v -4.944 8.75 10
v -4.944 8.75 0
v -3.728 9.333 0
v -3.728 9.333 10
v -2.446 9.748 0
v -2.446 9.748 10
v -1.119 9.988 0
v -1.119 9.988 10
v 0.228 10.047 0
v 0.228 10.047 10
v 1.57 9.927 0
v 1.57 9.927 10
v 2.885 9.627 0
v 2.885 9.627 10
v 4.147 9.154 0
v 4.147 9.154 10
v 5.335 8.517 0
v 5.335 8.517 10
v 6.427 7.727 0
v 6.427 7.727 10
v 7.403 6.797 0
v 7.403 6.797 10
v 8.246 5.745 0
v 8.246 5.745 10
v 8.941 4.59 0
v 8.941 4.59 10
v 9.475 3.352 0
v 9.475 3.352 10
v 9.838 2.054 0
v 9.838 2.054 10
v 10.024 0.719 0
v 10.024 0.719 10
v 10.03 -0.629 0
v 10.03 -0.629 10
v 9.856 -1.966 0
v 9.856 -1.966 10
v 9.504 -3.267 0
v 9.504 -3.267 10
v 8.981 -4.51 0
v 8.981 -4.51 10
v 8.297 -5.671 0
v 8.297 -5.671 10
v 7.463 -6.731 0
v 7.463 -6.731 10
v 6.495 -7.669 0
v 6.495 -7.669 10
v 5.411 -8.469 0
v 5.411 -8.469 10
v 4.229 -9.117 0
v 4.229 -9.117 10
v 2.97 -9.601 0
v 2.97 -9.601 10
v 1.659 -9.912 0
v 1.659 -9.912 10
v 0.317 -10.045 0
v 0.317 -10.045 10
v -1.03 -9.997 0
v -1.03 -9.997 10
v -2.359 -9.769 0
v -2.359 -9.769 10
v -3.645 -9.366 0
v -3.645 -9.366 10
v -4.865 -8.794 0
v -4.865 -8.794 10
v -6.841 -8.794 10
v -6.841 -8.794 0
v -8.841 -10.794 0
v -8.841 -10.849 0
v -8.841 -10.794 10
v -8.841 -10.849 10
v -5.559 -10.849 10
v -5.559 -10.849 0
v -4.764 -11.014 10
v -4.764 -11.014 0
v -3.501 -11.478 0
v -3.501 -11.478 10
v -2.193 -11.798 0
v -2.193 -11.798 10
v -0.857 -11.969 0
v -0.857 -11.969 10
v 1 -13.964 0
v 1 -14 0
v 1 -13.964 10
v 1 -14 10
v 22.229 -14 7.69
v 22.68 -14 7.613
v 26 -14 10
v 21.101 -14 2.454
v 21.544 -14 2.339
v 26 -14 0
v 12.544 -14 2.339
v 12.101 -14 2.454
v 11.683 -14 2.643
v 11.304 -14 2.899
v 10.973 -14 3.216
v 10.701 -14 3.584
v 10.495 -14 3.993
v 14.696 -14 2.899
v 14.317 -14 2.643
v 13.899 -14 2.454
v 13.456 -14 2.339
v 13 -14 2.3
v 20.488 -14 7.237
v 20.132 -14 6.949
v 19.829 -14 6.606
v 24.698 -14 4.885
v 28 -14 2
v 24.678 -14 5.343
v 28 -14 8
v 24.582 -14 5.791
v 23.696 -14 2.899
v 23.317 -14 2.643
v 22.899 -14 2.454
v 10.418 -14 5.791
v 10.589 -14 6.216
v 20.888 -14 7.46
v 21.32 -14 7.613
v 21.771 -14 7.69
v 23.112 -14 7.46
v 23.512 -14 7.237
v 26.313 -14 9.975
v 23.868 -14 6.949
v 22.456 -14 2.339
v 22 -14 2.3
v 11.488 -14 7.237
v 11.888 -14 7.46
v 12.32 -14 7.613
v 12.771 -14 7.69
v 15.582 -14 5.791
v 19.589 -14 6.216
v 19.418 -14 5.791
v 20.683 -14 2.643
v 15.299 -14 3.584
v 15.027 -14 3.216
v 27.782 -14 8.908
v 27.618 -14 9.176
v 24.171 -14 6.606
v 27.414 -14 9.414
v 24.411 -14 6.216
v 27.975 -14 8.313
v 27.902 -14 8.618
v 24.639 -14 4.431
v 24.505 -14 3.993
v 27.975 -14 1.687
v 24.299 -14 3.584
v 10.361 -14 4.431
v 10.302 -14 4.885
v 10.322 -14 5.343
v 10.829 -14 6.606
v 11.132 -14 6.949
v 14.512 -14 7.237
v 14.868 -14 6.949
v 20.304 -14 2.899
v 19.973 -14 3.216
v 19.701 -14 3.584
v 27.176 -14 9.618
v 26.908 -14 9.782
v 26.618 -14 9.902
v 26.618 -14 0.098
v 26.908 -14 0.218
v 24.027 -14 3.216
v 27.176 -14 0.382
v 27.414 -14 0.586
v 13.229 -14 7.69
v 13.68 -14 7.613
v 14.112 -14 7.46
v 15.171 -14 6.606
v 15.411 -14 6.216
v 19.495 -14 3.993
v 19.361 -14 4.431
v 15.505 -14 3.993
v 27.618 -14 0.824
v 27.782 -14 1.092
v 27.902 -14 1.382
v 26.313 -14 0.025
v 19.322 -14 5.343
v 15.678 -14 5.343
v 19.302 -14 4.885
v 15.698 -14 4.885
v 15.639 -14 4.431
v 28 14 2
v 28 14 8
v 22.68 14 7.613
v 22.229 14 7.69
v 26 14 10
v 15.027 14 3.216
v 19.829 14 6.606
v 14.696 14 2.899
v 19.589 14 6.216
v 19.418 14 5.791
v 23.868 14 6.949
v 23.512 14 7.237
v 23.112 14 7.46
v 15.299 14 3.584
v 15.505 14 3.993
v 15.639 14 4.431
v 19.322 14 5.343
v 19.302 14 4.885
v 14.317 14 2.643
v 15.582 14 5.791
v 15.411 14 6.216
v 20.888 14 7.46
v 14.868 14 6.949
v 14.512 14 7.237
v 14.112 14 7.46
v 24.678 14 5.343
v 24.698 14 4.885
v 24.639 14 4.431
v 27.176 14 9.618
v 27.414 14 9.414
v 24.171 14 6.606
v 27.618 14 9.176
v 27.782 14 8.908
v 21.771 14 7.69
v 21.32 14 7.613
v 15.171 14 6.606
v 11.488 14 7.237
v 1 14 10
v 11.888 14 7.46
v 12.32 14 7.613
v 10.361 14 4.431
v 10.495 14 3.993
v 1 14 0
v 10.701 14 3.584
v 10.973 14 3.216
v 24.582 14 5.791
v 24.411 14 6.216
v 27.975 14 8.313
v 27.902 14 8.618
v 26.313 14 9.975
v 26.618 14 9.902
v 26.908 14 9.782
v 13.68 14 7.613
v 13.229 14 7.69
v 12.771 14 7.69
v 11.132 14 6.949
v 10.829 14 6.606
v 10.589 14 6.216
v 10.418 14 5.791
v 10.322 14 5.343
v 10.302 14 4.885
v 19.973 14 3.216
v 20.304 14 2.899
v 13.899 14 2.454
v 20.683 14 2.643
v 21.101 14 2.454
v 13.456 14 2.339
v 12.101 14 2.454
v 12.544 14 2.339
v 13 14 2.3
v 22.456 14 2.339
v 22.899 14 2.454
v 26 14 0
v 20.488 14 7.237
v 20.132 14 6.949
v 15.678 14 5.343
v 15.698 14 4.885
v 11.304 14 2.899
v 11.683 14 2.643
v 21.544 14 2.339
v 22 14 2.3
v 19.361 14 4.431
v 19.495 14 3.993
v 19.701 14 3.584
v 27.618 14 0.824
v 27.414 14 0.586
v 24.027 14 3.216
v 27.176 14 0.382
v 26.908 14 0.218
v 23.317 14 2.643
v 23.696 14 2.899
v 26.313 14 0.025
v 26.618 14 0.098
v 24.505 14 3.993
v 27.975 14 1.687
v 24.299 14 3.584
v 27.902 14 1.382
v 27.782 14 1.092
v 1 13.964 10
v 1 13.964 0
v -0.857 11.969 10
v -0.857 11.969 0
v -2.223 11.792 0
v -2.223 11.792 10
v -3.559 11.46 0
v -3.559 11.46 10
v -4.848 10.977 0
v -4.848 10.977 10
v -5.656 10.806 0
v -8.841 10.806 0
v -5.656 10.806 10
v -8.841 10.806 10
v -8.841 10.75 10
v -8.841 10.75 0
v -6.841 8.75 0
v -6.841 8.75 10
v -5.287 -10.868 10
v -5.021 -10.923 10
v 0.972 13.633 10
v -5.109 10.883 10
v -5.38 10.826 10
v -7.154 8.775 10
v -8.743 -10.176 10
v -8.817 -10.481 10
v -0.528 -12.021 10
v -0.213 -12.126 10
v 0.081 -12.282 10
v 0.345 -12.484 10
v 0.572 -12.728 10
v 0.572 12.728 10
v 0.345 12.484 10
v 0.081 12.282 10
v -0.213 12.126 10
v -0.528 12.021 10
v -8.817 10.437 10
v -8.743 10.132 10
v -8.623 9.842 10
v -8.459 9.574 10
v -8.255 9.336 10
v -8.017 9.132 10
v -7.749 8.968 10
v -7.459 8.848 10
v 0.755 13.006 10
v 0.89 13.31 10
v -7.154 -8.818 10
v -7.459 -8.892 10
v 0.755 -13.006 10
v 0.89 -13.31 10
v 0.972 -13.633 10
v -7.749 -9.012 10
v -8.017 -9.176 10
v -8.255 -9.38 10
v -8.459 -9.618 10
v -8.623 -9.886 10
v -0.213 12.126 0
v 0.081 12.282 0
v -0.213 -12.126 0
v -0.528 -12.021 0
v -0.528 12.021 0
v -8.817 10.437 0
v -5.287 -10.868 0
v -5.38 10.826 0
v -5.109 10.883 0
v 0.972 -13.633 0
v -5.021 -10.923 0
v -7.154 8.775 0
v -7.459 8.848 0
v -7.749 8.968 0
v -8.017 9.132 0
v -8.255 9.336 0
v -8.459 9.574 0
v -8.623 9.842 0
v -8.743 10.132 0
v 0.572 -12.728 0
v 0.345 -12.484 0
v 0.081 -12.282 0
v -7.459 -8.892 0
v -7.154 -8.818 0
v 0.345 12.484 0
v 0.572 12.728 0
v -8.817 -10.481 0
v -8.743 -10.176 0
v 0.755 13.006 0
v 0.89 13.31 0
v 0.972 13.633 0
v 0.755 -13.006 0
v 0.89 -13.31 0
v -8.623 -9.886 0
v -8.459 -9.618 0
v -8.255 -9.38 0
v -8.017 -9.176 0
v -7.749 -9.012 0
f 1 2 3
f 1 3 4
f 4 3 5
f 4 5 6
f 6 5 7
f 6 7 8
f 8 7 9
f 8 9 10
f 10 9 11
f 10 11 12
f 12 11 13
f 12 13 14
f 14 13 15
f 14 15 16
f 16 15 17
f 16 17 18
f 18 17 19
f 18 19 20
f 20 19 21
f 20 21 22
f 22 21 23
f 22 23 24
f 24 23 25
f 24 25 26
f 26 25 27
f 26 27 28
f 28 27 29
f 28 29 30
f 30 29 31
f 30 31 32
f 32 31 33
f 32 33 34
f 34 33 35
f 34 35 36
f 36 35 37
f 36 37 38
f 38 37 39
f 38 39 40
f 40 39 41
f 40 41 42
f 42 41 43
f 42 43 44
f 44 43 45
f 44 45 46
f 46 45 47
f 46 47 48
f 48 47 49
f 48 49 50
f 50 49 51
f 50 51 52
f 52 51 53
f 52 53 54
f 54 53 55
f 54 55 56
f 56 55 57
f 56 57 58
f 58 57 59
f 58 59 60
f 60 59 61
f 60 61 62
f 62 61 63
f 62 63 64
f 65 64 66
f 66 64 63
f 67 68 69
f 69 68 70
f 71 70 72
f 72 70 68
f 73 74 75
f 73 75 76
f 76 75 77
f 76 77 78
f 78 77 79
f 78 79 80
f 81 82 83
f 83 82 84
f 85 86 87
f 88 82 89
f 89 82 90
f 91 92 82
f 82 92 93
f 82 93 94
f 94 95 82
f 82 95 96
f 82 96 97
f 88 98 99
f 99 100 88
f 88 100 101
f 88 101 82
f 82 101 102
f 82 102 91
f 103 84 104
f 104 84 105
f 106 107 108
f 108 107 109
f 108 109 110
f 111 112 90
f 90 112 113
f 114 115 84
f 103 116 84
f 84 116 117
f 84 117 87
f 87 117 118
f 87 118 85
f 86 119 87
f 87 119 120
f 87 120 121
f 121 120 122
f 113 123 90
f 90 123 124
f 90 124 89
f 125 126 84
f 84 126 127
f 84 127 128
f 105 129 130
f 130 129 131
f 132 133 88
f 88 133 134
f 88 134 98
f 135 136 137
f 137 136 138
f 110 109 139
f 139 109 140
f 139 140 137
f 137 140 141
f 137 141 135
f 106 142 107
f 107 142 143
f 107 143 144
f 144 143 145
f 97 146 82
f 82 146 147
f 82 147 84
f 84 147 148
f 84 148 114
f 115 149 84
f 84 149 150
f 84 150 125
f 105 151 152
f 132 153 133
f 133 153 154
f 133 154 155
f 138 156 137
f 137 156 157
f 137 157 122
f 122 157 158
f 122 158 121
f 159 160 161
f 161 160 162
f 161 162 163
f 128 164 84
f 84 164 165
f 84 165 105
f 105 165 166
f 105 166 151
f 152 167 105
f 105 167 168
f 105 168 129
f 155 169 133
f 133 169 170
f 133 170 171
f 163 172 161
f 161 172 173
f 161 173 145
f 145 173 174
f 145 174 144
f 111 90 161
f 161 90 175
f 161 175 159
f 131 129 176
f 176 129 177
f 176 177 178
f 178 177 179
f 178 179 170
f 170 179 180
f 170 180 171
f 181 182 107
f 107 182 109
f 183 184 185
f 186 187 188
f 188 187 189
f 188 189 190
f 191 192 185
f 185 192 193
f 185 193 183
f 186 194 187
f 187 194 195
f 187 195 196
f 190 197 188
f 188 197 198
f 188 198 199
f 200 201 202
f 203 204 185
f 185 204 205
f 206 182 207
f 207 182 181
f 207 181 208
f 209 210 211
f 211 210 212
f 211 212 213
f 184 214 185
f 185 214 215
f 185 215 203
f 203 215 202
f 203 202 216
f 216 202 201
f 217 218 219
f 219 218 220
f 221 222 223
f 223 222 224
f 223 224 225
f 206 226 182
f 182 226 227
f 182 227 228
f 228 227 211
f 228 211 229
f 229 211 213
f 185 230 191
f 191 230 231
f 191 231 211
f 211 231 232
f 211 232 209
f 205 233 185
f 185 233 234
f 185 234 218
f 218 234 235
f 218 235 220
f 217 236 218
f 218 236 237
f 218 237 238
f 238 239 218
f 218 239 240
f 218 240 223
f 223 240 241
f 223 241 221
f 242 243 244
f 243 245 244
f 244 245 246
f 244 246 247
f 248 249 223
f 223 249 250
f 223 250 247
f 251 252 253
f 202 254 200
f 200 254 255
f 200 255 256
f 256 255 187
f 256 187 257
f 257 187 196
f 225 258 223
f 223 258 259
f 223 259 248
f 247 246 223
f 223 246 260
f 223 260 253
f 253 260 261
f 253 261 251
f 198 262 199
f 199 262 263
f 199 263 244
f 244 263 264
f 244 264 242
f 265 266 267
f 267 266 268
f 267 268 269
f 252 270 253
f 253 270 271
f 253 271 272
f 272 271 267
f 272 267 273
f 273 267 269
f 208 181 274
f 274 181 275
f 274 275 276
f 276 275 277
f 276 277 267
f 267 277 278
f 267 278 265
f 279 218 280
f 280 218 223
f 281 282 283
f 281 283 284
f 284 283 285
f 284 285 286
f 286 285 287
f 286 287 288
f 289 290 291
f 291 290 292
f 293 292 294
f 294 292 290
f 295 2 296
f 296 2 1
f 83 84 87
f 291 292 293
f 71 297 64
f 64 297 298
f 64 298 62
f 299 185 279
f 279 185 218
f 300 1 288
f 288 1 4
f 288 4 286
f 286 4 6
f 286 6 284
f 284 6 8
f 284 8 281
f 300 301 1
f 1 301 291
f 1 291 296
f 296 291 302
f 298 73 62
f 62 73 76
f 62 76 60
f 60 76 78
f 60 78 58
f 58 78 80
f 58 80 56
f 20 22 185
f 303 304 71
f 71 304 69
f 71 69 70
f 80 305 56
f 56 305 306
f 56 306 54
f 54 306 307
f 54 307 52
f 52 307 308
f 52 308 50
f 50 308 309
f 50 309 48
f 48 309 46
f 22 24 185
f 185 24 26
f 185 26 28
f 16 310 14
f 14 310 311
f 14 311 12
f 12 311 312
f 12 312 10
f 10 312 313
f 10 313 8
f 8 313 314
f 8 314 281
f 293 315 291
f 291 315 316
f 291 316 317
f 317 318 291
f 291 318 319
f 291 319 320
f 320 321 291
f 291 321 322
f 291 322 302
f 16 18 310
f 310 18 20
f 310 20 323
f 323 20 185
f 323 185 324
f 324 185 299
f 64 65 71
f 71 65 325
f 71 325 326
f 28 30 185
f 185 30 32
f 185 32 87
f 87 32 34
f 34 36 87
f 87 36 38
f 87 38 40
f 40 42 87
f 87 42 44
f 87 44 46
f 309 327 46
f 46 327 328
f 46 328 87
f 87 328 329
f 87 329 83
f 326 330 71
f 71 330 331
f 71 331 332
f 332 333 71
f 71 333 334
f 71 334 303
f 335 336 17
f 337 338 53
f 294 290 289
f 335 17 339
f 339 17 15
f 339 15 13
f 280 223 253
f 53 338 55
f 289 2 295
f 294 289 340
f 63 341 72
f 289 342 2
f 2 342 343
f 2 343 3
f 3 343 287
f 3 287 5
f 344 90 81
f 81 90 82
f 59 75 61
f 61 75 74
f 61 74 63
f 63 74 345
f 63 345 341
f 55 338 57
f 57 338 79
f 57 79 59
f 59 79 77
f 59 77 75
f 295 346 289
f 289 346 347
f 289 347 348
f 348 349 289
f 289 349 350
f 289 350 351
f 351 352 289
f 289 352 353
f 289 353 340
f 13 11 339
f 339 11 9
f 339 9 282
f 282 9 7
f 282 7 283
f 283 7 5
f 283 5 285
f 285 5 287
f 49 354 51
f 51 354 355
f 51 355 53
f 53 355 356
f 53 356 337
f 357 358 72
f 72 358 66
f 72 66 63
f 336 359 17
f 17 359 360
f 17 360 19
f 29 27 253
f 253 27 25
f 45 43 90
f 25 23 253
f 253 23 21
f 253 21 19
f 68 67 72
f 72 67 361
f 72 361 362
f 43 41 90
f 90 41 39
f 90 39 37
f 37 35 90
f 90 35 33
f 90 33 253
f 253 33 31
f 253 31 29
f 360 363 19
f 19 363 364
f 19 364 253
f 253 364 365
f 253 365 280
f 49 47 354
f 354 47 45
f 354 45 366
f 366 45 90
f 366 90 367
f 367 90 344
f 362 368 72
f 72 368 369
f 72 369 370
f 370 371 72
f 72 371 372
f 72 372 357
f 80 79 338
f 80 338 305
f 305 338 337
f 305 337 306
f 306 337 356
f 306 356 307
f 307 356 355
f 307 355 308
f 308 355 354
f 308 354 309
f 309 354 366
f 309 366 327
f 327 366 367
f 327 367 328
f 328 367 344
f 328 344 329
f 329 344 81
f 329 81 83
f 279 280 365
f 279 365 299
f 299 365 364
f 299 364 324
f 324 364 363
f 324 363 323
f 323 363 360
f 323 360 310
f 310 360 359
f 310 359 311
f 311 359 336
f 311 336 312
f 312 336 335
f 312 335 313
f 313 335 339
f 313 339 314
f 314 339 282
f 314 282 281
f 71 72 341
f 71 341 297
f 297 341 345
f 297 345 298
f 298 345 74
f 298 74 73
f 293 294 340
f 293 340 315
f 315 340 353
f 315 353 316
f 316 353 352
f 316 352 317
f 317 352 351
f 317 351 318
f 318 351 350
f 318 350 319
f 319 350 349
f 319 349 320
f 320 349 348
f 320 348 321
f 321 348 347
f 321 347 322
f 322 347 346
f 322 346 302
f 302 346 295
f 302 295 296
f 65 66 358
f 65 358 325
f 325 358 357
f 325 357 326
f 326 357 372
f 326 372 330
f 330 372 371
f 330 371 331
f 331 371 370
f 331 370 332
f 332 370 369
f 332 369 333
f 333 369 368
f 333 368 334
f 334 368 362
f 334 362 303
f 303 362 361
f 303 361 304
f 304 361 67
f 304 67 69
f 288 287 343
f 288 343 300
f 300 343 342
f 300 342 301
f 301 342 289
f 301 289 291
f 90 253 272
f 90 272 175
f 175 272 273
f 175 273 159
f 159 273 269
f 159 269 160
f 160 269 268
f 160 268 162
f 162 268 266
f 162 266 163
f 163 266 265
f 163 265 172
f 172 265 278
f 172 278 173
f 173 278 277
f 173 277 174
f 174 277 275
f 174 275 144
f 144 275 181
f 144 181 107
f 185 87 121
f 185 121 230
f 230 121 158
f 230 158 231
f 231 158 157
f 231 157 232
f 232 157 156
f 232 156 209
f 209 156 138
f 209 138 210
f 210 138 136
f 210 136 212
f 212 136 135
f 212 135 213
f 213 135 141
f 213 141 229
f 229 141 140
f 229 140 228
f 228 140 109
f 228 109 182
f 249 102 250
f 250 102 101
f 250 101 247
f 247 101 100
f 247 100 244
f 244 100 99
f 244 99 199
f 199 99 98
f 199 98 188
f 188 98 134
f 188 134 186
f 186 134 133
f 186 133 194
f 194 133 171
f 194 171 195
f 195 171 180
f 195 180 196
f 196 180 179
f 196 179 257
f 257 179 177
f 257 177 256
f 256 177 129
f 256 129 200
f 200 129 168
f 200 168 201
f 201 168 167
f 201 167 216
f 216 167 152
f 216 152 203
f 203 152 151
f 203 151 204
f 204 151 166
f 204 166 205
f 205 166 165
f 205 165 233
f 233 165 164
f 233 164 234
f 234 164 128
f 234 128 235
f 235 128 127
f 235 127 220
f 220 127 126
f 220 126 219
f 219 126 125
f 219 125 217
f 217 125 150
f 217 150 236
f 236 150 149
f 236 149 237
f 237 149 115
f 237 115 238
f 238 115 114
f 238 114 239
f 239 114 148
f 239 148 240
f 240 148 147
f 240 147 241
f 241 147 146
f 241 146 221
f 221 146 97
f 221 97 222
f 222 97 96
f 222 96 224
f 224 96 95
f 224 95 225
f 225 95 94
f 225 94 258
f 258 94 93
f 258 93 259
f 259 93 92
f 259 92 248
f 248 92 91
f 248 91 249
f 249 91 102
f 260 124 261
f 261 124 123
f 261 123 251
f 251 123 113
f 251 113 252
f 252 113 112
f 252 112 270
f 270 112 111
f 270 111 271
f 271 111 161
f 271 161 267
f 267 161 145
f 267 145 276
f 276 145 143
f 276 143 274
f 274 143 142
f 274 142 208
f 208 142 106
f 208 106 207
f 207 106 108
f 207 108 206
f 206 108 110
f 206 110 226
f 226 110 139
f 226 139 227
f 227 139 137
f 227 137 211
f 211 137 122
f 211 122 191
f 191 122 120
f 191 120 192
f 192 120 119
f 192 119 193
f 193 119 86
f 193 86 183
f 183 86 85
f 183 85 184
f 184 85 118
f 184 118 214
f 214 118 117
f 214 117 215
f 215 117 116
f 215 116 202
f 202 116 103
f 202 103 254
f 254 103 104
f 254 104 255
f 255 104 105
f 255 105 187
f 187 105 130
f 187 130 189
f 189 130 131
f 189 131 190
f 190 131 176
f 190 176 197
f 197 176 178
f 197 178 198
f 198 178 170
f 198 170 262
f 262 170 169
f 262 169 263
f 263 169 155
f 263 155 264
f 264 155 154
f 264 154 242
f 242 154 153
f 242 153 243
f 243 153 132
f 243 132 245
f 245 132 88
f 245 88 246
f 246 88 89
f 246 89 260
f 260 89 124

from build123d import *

# Parameters (mm, degrees)
BOSS_EXTRUDE1_DEPTH = 10
FILLET1_R           = 2
SKETCH2_R           = 2.7
CUT_EXTRUDE1_DEPTH  = 41.841155713


with BuildPart() as part:
    # Sketch1 → Boss-Extrude1 (new body)
    with BuildSketch(Plane.XY):
        with BuildLine():
            Line((1, -11.958260743), (1, -14))
            Line((1, -14), (10, -14))
            Line((10, -14), (28, -14))
            Line((28, -14), (28, 14))
            Line((28, 14), (6, 14))
            Line((6, 14), (1, 14))
            Line((1, 14), (1, 11.958260743))
            ThreePointArc((1, 11.958260743), (-2.185898684, 11.799230778), (-5.217338717, 10.806450699))
            Line((-5.217338717, 10.806450699), (-8.841229183, 10.806450699))
            Line((-8.841229183, 10.806450699), (-8.841229183, 8.75))
            Line((-8.841229183, 8.75), (-4.943682838, 8.75))
            ThreePointArc((-4.943682838, 8.75), (10.04990004, 0.04482392), (-4.865435329, -8.79375))
            Line((-4.865435329, -8.79375), (-8.841229183, -8.79375))
            Line((-8.841229183, -8.79375), (-8.841229183, -10.849241119))
            Line((-8.841229183, -10.849241119), (-5.127764341, -10.849241119))
            ThreePointArc((-5.127764341, -10.849241119), (-2.137075278, -11.808171292), (1, -11.958260743))
        make_face()
    extrude(amount=BOSS_EXTRUDE1_DEPTH)

    # Fillet1
    fillet1_edges = [part.edges().sort_by_distance(p)[0] for p in [
        (28, 0, 0),
        (-8.841229183, 8.75, 5),
        (-5.217338717, 10.806450699, 5),
        (1, 11.958260743, 5),
        (1, -11.958260743, 5),
        (-5.127764341, -10.849241119, 5),
        (-8.841229183, -8.79375, 5),
        (28, 0, 10),
    ]]
    fillet(fillet1_edges, radius=FILLET1_R)

    # Sketch2 → Cut-Extrude1 (cut, through all)
    with BuildSketch(Plane.XZ.offset(14)):
        with Locations(Location((13, 5, 0), (0, 0, 270))):
            Circle(SKETCH2_R)
        with Locations(Location((22, 5, 0), (0, 0, 270))):
            Circle(SKETCH2_R)
    extrude(amount=-CUT_EXTRUDE1_DEPTH, mode=Mode.SUBTRACT)


solid = part.part
